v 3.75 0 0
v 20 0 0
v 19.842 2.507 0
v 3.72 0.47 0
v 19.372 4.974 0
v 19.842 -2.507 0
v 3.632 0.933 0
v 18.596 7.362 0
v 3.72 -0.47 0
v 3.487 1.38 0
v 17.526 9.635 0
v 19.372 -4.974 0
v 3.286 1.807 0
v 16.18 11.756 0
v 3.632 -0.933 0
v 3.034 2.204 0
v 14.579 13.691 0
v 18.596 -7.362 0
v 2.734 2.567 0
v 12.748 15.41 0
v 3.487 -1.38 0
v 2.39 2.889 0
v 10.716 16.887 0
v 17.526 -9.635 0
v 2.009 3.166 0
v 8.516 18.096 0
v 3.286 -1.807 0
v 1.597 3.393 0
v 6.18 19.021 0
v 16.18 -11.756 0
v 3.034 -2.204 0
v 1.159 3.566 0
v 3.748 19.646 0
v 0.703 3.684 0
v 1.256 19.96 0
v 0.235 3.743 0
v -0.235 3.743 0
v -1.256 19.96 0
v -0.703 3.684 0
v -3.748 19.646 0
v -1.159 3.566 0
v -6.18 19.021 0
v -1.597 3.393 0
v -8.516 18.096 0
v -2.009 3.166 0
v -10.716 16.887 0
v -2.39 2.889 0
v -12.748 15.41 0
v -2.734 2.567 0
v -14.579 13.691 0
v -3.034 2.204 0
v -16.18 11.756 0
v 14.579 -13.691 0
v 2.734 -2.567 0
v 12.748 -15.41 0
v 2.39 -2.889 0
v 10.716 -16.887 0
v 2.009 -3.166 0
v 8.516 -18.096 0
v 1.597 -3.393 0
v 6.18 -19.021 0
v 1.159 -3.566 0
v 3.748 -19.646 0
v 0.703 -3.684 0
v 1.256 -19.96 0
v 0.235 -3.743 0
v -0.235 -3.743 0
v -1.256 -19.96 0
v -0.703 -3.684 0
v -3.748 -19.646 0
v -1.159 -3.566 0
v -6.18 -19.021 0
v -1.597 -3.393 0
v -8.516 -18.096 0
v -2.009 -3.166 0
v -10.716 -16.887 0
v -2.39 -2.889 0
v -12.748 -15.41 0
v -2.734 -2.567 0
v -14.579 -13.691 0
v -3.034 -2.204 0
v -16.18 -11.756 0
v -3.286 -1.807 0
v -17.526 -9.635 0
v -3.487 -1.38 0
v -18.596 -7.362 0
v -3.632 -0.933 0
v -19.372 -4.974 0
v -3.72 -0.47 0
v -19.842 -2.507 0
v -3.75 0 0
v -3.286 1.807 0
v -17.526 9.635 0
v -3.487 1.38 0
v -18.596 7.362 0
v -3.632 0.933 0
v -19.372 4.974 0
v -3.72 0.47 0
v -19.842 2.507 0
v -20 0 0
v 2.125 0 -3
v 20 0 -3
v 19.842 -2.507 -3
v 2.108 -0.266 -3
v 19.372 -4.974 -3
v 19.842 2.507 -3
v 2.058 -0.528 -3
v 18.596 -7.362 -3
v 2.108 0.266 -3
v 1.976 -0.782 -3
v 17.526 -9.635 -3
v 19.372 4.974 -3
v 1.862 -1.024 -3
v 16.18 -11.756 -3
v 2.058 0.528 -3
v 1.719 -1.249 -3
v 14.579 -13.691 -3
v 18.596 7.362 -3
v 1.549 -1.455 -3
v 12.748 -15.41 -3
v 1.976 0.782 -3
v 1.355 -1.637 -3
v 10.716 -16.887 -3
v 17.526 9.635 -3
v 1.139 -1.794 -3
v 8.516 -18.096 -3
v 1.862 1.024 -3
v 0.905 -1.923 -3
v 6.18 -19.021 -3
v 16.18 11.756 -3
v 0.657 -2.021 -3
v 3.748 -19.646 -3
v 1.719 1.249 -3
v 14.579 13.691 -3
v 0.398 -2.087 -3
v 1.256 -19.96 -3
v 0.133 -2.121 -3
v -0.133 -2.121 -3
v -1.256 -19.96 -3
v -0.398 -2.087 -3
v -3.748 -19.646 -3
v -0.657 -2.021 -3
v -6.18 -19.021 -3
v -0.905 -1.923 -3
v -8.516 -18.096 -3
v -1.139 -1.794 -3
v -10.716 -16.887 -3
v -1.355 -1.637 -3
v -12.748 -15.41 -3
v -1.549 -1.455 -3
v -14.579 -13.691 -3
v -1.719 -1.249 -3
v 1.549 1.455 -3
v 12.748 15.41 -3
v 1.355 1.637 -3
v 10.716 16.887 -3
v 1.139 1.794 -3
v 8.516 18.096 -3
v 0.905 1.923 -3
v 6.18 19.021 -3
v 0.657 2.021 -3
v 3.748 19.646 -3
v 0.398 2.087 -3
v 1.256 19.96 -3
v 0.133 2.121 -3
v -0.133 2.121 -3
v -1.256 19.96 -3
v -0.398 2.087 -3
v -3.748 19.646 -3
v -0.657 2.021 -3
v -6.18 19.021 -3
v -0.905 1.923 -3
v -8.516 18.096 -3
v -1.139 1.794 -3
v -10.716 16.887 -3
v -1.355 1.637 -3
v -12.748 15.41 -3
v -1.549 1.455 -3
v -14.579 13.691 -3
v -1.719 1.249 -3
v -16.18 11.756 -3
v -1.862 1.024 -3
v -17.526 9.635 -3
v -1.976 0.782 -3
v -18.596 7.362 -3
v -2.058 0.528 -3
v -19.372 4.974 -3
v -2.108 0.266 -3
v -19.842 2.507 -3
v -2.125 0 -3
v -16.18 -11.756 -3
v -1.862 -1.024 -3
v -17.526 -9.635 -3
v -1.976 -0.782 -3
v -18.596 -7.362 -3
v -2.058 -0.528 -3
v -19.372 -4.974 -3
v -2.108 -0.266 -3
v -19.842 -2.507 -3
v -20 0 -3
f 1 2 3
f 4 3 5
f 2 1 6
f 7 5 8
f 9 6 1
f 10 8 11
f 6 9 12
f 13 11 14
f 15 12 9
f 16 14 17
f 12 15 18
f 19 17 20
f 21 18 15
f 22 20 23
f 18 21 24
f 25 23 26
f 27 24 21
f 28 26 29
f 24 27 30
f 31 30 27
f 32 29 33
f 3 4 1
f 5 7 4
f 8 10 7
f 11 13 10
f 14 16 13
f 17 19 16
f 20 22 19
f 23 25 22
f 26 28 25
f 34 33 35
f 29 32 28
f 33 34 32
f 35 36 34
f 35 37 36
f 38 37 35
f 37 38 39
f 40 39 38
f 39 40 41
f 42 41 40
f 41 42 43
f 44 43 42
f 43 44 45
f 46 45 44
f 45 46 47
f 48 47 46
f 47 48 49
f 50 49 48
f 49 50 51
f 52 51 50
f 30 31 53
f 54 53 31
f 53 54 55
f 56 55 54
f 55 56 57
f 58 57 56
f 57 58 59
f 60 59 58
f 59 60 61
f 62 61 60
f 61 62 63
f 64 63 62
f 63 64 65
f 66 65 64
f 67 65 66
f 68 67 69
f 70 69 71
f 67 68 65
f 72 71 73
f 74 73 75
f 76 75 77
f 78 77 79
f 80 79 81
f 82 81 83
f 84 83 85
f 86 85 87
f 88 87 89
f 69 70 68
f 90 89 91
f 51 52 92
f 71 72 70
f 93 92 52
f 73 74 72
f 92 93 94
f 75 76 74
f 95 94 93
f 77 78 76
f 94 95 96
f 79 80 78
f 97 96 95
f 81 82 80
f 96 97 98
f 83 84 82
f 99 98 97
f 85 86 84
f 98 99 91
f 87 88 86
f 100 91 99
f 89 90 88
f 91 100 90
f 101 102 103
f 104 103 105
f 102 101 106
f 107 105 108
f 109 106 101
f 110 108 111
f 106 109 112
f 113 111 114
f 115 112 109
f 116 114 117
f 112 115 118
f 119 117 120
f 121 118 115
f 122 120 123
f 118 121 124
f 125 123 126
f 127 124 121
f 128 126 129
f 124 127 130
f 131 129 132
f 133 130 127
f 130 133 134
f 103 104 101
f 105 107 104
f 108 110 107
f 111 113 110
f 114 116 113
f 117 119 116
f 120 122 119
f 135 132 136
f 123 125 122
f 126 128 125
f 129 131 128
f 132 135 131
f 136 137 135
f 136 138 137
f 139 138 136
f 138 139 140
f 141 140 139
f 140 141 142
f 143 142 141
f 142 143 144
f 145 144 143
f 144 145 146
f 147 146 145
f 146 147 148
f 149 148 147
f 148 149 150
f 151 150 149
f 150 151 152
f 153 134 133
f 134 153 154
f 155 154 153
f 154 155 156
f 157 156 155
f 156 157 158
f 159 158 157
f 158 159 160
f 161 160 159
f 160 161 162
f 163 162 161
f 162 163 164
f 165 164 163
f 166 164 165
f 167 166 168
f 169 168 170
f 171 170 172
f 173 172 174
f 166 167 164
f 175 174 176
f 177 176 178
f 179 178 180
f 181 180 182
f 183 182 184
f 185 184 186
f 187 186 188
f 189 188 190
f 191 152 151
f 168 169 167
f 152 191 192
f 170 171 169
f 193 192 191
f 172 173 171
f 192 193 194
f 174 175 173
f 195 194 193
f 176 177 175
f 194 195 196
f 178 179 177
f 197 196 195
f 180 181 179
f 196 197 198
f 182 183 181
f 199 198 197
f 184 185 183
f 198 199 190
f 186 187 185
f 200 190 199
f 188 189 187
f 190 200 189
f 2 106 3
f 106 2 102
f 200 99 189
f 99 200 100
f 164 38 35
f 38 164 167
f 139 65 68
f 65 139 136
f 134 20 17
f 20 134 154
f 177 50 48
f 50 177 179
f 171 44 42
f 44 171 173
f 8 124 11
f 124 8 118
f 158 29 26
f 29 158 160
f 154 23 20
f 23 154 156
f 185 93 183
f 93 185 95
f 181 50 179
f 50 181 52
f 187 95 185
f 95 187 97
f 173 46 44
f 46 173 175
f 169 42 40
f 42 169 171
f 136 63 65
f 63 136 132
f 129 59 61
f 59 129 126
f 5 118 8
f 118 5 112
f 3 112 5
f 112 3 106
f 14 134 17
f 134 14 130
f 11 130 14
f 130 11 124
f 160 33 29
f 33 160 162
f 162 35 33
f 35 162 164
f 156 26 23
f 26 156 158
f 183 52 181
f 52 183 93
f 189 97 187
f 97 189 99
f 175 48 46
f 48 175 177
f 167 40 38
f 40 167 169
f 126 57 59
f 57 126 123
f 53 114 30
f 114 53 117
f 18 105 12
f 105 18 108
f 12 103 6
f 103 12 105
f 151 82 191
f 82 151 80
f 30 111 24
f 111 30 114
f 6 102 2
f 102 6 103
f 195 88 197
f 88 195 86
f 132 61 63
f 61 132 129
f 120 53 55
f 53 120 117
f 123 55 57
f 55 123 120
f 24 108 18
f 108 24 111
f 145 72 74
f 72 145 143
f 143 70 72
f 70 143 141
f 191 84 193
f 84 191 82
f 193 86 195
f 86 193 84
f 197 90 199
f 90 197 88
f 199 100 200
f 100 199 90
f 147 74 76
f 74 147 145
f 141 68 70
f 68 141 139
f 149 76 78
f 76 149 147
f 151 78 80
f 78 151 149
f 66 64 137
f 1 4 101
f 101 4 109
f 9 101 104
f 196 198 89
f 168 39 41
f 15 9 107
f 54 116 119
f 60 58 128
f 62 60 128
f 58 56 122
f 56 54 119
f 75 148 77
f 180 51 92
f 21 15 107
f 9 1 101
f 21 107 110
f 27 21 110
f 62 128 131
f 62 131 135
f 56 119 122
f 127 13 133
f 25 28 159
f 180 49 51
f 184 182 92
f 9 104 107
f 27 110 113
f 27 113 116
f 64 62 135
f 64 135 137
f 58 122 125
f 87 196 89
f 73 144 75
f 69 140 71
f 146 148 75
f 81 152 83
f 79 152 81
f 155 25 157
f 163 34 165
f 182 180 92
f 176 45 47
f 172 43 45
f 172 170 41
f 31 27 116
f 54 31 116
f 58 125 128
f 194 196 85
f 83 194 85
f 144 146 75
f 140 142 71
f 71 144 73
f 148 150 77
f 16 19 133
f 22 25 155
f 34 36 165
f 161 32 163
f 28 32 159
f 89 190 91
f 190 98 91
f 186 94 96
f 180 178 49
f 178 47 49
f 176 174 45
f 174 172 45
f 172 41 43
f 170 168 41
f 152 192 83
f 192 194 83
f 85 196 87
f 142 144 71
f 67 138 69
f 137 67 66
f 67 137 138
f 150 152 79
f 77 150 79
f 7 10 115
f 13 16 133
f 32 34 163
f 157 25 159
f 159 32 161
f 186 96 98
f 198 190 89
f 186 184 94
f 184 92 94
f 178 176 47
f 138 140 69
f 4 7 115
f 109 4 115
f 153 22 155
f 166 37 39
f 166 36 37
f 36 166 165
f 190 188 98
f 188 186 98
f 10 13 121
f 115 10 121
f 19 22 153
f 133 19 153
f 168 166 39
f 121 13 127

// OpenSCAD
$fn = 50;


difference() {
	union() {
		translate(v = [0, 0, -3.0000000000]) {
			cylinder(h = 3, r = 10.0000000000);
		}
		translate(v = [0, 0, -3.0000000000]) {
			cylinder(h = 3, r = 20.0000000000);
		}
	}
	union() {
		translate(v = [0, 0, 0]) {
			rotate(a = [0, 0, 0]) {
				difference() {
					union() {
						#translate(v = [0, 0, -3.0000000000]) {
							cylinder(h = 3, r = 2.0000000000);
						}
						#translate(v = [0, 0, -3]) {
							cylinder(h = 3, r1 = 2.1250000000, r2 = 3.7500000000);
						}
						#translate(v = [0, 0, -3.0000000000]) {
							cylinder(h = 3, r = 2.1250000000);
						}
						#translate(v = [0, 0, -3.0000000000]) {
							cylinder(h = 3, r = 2.0000000000);
						}
					}
					union();
				}
			}
		}
	}
}
